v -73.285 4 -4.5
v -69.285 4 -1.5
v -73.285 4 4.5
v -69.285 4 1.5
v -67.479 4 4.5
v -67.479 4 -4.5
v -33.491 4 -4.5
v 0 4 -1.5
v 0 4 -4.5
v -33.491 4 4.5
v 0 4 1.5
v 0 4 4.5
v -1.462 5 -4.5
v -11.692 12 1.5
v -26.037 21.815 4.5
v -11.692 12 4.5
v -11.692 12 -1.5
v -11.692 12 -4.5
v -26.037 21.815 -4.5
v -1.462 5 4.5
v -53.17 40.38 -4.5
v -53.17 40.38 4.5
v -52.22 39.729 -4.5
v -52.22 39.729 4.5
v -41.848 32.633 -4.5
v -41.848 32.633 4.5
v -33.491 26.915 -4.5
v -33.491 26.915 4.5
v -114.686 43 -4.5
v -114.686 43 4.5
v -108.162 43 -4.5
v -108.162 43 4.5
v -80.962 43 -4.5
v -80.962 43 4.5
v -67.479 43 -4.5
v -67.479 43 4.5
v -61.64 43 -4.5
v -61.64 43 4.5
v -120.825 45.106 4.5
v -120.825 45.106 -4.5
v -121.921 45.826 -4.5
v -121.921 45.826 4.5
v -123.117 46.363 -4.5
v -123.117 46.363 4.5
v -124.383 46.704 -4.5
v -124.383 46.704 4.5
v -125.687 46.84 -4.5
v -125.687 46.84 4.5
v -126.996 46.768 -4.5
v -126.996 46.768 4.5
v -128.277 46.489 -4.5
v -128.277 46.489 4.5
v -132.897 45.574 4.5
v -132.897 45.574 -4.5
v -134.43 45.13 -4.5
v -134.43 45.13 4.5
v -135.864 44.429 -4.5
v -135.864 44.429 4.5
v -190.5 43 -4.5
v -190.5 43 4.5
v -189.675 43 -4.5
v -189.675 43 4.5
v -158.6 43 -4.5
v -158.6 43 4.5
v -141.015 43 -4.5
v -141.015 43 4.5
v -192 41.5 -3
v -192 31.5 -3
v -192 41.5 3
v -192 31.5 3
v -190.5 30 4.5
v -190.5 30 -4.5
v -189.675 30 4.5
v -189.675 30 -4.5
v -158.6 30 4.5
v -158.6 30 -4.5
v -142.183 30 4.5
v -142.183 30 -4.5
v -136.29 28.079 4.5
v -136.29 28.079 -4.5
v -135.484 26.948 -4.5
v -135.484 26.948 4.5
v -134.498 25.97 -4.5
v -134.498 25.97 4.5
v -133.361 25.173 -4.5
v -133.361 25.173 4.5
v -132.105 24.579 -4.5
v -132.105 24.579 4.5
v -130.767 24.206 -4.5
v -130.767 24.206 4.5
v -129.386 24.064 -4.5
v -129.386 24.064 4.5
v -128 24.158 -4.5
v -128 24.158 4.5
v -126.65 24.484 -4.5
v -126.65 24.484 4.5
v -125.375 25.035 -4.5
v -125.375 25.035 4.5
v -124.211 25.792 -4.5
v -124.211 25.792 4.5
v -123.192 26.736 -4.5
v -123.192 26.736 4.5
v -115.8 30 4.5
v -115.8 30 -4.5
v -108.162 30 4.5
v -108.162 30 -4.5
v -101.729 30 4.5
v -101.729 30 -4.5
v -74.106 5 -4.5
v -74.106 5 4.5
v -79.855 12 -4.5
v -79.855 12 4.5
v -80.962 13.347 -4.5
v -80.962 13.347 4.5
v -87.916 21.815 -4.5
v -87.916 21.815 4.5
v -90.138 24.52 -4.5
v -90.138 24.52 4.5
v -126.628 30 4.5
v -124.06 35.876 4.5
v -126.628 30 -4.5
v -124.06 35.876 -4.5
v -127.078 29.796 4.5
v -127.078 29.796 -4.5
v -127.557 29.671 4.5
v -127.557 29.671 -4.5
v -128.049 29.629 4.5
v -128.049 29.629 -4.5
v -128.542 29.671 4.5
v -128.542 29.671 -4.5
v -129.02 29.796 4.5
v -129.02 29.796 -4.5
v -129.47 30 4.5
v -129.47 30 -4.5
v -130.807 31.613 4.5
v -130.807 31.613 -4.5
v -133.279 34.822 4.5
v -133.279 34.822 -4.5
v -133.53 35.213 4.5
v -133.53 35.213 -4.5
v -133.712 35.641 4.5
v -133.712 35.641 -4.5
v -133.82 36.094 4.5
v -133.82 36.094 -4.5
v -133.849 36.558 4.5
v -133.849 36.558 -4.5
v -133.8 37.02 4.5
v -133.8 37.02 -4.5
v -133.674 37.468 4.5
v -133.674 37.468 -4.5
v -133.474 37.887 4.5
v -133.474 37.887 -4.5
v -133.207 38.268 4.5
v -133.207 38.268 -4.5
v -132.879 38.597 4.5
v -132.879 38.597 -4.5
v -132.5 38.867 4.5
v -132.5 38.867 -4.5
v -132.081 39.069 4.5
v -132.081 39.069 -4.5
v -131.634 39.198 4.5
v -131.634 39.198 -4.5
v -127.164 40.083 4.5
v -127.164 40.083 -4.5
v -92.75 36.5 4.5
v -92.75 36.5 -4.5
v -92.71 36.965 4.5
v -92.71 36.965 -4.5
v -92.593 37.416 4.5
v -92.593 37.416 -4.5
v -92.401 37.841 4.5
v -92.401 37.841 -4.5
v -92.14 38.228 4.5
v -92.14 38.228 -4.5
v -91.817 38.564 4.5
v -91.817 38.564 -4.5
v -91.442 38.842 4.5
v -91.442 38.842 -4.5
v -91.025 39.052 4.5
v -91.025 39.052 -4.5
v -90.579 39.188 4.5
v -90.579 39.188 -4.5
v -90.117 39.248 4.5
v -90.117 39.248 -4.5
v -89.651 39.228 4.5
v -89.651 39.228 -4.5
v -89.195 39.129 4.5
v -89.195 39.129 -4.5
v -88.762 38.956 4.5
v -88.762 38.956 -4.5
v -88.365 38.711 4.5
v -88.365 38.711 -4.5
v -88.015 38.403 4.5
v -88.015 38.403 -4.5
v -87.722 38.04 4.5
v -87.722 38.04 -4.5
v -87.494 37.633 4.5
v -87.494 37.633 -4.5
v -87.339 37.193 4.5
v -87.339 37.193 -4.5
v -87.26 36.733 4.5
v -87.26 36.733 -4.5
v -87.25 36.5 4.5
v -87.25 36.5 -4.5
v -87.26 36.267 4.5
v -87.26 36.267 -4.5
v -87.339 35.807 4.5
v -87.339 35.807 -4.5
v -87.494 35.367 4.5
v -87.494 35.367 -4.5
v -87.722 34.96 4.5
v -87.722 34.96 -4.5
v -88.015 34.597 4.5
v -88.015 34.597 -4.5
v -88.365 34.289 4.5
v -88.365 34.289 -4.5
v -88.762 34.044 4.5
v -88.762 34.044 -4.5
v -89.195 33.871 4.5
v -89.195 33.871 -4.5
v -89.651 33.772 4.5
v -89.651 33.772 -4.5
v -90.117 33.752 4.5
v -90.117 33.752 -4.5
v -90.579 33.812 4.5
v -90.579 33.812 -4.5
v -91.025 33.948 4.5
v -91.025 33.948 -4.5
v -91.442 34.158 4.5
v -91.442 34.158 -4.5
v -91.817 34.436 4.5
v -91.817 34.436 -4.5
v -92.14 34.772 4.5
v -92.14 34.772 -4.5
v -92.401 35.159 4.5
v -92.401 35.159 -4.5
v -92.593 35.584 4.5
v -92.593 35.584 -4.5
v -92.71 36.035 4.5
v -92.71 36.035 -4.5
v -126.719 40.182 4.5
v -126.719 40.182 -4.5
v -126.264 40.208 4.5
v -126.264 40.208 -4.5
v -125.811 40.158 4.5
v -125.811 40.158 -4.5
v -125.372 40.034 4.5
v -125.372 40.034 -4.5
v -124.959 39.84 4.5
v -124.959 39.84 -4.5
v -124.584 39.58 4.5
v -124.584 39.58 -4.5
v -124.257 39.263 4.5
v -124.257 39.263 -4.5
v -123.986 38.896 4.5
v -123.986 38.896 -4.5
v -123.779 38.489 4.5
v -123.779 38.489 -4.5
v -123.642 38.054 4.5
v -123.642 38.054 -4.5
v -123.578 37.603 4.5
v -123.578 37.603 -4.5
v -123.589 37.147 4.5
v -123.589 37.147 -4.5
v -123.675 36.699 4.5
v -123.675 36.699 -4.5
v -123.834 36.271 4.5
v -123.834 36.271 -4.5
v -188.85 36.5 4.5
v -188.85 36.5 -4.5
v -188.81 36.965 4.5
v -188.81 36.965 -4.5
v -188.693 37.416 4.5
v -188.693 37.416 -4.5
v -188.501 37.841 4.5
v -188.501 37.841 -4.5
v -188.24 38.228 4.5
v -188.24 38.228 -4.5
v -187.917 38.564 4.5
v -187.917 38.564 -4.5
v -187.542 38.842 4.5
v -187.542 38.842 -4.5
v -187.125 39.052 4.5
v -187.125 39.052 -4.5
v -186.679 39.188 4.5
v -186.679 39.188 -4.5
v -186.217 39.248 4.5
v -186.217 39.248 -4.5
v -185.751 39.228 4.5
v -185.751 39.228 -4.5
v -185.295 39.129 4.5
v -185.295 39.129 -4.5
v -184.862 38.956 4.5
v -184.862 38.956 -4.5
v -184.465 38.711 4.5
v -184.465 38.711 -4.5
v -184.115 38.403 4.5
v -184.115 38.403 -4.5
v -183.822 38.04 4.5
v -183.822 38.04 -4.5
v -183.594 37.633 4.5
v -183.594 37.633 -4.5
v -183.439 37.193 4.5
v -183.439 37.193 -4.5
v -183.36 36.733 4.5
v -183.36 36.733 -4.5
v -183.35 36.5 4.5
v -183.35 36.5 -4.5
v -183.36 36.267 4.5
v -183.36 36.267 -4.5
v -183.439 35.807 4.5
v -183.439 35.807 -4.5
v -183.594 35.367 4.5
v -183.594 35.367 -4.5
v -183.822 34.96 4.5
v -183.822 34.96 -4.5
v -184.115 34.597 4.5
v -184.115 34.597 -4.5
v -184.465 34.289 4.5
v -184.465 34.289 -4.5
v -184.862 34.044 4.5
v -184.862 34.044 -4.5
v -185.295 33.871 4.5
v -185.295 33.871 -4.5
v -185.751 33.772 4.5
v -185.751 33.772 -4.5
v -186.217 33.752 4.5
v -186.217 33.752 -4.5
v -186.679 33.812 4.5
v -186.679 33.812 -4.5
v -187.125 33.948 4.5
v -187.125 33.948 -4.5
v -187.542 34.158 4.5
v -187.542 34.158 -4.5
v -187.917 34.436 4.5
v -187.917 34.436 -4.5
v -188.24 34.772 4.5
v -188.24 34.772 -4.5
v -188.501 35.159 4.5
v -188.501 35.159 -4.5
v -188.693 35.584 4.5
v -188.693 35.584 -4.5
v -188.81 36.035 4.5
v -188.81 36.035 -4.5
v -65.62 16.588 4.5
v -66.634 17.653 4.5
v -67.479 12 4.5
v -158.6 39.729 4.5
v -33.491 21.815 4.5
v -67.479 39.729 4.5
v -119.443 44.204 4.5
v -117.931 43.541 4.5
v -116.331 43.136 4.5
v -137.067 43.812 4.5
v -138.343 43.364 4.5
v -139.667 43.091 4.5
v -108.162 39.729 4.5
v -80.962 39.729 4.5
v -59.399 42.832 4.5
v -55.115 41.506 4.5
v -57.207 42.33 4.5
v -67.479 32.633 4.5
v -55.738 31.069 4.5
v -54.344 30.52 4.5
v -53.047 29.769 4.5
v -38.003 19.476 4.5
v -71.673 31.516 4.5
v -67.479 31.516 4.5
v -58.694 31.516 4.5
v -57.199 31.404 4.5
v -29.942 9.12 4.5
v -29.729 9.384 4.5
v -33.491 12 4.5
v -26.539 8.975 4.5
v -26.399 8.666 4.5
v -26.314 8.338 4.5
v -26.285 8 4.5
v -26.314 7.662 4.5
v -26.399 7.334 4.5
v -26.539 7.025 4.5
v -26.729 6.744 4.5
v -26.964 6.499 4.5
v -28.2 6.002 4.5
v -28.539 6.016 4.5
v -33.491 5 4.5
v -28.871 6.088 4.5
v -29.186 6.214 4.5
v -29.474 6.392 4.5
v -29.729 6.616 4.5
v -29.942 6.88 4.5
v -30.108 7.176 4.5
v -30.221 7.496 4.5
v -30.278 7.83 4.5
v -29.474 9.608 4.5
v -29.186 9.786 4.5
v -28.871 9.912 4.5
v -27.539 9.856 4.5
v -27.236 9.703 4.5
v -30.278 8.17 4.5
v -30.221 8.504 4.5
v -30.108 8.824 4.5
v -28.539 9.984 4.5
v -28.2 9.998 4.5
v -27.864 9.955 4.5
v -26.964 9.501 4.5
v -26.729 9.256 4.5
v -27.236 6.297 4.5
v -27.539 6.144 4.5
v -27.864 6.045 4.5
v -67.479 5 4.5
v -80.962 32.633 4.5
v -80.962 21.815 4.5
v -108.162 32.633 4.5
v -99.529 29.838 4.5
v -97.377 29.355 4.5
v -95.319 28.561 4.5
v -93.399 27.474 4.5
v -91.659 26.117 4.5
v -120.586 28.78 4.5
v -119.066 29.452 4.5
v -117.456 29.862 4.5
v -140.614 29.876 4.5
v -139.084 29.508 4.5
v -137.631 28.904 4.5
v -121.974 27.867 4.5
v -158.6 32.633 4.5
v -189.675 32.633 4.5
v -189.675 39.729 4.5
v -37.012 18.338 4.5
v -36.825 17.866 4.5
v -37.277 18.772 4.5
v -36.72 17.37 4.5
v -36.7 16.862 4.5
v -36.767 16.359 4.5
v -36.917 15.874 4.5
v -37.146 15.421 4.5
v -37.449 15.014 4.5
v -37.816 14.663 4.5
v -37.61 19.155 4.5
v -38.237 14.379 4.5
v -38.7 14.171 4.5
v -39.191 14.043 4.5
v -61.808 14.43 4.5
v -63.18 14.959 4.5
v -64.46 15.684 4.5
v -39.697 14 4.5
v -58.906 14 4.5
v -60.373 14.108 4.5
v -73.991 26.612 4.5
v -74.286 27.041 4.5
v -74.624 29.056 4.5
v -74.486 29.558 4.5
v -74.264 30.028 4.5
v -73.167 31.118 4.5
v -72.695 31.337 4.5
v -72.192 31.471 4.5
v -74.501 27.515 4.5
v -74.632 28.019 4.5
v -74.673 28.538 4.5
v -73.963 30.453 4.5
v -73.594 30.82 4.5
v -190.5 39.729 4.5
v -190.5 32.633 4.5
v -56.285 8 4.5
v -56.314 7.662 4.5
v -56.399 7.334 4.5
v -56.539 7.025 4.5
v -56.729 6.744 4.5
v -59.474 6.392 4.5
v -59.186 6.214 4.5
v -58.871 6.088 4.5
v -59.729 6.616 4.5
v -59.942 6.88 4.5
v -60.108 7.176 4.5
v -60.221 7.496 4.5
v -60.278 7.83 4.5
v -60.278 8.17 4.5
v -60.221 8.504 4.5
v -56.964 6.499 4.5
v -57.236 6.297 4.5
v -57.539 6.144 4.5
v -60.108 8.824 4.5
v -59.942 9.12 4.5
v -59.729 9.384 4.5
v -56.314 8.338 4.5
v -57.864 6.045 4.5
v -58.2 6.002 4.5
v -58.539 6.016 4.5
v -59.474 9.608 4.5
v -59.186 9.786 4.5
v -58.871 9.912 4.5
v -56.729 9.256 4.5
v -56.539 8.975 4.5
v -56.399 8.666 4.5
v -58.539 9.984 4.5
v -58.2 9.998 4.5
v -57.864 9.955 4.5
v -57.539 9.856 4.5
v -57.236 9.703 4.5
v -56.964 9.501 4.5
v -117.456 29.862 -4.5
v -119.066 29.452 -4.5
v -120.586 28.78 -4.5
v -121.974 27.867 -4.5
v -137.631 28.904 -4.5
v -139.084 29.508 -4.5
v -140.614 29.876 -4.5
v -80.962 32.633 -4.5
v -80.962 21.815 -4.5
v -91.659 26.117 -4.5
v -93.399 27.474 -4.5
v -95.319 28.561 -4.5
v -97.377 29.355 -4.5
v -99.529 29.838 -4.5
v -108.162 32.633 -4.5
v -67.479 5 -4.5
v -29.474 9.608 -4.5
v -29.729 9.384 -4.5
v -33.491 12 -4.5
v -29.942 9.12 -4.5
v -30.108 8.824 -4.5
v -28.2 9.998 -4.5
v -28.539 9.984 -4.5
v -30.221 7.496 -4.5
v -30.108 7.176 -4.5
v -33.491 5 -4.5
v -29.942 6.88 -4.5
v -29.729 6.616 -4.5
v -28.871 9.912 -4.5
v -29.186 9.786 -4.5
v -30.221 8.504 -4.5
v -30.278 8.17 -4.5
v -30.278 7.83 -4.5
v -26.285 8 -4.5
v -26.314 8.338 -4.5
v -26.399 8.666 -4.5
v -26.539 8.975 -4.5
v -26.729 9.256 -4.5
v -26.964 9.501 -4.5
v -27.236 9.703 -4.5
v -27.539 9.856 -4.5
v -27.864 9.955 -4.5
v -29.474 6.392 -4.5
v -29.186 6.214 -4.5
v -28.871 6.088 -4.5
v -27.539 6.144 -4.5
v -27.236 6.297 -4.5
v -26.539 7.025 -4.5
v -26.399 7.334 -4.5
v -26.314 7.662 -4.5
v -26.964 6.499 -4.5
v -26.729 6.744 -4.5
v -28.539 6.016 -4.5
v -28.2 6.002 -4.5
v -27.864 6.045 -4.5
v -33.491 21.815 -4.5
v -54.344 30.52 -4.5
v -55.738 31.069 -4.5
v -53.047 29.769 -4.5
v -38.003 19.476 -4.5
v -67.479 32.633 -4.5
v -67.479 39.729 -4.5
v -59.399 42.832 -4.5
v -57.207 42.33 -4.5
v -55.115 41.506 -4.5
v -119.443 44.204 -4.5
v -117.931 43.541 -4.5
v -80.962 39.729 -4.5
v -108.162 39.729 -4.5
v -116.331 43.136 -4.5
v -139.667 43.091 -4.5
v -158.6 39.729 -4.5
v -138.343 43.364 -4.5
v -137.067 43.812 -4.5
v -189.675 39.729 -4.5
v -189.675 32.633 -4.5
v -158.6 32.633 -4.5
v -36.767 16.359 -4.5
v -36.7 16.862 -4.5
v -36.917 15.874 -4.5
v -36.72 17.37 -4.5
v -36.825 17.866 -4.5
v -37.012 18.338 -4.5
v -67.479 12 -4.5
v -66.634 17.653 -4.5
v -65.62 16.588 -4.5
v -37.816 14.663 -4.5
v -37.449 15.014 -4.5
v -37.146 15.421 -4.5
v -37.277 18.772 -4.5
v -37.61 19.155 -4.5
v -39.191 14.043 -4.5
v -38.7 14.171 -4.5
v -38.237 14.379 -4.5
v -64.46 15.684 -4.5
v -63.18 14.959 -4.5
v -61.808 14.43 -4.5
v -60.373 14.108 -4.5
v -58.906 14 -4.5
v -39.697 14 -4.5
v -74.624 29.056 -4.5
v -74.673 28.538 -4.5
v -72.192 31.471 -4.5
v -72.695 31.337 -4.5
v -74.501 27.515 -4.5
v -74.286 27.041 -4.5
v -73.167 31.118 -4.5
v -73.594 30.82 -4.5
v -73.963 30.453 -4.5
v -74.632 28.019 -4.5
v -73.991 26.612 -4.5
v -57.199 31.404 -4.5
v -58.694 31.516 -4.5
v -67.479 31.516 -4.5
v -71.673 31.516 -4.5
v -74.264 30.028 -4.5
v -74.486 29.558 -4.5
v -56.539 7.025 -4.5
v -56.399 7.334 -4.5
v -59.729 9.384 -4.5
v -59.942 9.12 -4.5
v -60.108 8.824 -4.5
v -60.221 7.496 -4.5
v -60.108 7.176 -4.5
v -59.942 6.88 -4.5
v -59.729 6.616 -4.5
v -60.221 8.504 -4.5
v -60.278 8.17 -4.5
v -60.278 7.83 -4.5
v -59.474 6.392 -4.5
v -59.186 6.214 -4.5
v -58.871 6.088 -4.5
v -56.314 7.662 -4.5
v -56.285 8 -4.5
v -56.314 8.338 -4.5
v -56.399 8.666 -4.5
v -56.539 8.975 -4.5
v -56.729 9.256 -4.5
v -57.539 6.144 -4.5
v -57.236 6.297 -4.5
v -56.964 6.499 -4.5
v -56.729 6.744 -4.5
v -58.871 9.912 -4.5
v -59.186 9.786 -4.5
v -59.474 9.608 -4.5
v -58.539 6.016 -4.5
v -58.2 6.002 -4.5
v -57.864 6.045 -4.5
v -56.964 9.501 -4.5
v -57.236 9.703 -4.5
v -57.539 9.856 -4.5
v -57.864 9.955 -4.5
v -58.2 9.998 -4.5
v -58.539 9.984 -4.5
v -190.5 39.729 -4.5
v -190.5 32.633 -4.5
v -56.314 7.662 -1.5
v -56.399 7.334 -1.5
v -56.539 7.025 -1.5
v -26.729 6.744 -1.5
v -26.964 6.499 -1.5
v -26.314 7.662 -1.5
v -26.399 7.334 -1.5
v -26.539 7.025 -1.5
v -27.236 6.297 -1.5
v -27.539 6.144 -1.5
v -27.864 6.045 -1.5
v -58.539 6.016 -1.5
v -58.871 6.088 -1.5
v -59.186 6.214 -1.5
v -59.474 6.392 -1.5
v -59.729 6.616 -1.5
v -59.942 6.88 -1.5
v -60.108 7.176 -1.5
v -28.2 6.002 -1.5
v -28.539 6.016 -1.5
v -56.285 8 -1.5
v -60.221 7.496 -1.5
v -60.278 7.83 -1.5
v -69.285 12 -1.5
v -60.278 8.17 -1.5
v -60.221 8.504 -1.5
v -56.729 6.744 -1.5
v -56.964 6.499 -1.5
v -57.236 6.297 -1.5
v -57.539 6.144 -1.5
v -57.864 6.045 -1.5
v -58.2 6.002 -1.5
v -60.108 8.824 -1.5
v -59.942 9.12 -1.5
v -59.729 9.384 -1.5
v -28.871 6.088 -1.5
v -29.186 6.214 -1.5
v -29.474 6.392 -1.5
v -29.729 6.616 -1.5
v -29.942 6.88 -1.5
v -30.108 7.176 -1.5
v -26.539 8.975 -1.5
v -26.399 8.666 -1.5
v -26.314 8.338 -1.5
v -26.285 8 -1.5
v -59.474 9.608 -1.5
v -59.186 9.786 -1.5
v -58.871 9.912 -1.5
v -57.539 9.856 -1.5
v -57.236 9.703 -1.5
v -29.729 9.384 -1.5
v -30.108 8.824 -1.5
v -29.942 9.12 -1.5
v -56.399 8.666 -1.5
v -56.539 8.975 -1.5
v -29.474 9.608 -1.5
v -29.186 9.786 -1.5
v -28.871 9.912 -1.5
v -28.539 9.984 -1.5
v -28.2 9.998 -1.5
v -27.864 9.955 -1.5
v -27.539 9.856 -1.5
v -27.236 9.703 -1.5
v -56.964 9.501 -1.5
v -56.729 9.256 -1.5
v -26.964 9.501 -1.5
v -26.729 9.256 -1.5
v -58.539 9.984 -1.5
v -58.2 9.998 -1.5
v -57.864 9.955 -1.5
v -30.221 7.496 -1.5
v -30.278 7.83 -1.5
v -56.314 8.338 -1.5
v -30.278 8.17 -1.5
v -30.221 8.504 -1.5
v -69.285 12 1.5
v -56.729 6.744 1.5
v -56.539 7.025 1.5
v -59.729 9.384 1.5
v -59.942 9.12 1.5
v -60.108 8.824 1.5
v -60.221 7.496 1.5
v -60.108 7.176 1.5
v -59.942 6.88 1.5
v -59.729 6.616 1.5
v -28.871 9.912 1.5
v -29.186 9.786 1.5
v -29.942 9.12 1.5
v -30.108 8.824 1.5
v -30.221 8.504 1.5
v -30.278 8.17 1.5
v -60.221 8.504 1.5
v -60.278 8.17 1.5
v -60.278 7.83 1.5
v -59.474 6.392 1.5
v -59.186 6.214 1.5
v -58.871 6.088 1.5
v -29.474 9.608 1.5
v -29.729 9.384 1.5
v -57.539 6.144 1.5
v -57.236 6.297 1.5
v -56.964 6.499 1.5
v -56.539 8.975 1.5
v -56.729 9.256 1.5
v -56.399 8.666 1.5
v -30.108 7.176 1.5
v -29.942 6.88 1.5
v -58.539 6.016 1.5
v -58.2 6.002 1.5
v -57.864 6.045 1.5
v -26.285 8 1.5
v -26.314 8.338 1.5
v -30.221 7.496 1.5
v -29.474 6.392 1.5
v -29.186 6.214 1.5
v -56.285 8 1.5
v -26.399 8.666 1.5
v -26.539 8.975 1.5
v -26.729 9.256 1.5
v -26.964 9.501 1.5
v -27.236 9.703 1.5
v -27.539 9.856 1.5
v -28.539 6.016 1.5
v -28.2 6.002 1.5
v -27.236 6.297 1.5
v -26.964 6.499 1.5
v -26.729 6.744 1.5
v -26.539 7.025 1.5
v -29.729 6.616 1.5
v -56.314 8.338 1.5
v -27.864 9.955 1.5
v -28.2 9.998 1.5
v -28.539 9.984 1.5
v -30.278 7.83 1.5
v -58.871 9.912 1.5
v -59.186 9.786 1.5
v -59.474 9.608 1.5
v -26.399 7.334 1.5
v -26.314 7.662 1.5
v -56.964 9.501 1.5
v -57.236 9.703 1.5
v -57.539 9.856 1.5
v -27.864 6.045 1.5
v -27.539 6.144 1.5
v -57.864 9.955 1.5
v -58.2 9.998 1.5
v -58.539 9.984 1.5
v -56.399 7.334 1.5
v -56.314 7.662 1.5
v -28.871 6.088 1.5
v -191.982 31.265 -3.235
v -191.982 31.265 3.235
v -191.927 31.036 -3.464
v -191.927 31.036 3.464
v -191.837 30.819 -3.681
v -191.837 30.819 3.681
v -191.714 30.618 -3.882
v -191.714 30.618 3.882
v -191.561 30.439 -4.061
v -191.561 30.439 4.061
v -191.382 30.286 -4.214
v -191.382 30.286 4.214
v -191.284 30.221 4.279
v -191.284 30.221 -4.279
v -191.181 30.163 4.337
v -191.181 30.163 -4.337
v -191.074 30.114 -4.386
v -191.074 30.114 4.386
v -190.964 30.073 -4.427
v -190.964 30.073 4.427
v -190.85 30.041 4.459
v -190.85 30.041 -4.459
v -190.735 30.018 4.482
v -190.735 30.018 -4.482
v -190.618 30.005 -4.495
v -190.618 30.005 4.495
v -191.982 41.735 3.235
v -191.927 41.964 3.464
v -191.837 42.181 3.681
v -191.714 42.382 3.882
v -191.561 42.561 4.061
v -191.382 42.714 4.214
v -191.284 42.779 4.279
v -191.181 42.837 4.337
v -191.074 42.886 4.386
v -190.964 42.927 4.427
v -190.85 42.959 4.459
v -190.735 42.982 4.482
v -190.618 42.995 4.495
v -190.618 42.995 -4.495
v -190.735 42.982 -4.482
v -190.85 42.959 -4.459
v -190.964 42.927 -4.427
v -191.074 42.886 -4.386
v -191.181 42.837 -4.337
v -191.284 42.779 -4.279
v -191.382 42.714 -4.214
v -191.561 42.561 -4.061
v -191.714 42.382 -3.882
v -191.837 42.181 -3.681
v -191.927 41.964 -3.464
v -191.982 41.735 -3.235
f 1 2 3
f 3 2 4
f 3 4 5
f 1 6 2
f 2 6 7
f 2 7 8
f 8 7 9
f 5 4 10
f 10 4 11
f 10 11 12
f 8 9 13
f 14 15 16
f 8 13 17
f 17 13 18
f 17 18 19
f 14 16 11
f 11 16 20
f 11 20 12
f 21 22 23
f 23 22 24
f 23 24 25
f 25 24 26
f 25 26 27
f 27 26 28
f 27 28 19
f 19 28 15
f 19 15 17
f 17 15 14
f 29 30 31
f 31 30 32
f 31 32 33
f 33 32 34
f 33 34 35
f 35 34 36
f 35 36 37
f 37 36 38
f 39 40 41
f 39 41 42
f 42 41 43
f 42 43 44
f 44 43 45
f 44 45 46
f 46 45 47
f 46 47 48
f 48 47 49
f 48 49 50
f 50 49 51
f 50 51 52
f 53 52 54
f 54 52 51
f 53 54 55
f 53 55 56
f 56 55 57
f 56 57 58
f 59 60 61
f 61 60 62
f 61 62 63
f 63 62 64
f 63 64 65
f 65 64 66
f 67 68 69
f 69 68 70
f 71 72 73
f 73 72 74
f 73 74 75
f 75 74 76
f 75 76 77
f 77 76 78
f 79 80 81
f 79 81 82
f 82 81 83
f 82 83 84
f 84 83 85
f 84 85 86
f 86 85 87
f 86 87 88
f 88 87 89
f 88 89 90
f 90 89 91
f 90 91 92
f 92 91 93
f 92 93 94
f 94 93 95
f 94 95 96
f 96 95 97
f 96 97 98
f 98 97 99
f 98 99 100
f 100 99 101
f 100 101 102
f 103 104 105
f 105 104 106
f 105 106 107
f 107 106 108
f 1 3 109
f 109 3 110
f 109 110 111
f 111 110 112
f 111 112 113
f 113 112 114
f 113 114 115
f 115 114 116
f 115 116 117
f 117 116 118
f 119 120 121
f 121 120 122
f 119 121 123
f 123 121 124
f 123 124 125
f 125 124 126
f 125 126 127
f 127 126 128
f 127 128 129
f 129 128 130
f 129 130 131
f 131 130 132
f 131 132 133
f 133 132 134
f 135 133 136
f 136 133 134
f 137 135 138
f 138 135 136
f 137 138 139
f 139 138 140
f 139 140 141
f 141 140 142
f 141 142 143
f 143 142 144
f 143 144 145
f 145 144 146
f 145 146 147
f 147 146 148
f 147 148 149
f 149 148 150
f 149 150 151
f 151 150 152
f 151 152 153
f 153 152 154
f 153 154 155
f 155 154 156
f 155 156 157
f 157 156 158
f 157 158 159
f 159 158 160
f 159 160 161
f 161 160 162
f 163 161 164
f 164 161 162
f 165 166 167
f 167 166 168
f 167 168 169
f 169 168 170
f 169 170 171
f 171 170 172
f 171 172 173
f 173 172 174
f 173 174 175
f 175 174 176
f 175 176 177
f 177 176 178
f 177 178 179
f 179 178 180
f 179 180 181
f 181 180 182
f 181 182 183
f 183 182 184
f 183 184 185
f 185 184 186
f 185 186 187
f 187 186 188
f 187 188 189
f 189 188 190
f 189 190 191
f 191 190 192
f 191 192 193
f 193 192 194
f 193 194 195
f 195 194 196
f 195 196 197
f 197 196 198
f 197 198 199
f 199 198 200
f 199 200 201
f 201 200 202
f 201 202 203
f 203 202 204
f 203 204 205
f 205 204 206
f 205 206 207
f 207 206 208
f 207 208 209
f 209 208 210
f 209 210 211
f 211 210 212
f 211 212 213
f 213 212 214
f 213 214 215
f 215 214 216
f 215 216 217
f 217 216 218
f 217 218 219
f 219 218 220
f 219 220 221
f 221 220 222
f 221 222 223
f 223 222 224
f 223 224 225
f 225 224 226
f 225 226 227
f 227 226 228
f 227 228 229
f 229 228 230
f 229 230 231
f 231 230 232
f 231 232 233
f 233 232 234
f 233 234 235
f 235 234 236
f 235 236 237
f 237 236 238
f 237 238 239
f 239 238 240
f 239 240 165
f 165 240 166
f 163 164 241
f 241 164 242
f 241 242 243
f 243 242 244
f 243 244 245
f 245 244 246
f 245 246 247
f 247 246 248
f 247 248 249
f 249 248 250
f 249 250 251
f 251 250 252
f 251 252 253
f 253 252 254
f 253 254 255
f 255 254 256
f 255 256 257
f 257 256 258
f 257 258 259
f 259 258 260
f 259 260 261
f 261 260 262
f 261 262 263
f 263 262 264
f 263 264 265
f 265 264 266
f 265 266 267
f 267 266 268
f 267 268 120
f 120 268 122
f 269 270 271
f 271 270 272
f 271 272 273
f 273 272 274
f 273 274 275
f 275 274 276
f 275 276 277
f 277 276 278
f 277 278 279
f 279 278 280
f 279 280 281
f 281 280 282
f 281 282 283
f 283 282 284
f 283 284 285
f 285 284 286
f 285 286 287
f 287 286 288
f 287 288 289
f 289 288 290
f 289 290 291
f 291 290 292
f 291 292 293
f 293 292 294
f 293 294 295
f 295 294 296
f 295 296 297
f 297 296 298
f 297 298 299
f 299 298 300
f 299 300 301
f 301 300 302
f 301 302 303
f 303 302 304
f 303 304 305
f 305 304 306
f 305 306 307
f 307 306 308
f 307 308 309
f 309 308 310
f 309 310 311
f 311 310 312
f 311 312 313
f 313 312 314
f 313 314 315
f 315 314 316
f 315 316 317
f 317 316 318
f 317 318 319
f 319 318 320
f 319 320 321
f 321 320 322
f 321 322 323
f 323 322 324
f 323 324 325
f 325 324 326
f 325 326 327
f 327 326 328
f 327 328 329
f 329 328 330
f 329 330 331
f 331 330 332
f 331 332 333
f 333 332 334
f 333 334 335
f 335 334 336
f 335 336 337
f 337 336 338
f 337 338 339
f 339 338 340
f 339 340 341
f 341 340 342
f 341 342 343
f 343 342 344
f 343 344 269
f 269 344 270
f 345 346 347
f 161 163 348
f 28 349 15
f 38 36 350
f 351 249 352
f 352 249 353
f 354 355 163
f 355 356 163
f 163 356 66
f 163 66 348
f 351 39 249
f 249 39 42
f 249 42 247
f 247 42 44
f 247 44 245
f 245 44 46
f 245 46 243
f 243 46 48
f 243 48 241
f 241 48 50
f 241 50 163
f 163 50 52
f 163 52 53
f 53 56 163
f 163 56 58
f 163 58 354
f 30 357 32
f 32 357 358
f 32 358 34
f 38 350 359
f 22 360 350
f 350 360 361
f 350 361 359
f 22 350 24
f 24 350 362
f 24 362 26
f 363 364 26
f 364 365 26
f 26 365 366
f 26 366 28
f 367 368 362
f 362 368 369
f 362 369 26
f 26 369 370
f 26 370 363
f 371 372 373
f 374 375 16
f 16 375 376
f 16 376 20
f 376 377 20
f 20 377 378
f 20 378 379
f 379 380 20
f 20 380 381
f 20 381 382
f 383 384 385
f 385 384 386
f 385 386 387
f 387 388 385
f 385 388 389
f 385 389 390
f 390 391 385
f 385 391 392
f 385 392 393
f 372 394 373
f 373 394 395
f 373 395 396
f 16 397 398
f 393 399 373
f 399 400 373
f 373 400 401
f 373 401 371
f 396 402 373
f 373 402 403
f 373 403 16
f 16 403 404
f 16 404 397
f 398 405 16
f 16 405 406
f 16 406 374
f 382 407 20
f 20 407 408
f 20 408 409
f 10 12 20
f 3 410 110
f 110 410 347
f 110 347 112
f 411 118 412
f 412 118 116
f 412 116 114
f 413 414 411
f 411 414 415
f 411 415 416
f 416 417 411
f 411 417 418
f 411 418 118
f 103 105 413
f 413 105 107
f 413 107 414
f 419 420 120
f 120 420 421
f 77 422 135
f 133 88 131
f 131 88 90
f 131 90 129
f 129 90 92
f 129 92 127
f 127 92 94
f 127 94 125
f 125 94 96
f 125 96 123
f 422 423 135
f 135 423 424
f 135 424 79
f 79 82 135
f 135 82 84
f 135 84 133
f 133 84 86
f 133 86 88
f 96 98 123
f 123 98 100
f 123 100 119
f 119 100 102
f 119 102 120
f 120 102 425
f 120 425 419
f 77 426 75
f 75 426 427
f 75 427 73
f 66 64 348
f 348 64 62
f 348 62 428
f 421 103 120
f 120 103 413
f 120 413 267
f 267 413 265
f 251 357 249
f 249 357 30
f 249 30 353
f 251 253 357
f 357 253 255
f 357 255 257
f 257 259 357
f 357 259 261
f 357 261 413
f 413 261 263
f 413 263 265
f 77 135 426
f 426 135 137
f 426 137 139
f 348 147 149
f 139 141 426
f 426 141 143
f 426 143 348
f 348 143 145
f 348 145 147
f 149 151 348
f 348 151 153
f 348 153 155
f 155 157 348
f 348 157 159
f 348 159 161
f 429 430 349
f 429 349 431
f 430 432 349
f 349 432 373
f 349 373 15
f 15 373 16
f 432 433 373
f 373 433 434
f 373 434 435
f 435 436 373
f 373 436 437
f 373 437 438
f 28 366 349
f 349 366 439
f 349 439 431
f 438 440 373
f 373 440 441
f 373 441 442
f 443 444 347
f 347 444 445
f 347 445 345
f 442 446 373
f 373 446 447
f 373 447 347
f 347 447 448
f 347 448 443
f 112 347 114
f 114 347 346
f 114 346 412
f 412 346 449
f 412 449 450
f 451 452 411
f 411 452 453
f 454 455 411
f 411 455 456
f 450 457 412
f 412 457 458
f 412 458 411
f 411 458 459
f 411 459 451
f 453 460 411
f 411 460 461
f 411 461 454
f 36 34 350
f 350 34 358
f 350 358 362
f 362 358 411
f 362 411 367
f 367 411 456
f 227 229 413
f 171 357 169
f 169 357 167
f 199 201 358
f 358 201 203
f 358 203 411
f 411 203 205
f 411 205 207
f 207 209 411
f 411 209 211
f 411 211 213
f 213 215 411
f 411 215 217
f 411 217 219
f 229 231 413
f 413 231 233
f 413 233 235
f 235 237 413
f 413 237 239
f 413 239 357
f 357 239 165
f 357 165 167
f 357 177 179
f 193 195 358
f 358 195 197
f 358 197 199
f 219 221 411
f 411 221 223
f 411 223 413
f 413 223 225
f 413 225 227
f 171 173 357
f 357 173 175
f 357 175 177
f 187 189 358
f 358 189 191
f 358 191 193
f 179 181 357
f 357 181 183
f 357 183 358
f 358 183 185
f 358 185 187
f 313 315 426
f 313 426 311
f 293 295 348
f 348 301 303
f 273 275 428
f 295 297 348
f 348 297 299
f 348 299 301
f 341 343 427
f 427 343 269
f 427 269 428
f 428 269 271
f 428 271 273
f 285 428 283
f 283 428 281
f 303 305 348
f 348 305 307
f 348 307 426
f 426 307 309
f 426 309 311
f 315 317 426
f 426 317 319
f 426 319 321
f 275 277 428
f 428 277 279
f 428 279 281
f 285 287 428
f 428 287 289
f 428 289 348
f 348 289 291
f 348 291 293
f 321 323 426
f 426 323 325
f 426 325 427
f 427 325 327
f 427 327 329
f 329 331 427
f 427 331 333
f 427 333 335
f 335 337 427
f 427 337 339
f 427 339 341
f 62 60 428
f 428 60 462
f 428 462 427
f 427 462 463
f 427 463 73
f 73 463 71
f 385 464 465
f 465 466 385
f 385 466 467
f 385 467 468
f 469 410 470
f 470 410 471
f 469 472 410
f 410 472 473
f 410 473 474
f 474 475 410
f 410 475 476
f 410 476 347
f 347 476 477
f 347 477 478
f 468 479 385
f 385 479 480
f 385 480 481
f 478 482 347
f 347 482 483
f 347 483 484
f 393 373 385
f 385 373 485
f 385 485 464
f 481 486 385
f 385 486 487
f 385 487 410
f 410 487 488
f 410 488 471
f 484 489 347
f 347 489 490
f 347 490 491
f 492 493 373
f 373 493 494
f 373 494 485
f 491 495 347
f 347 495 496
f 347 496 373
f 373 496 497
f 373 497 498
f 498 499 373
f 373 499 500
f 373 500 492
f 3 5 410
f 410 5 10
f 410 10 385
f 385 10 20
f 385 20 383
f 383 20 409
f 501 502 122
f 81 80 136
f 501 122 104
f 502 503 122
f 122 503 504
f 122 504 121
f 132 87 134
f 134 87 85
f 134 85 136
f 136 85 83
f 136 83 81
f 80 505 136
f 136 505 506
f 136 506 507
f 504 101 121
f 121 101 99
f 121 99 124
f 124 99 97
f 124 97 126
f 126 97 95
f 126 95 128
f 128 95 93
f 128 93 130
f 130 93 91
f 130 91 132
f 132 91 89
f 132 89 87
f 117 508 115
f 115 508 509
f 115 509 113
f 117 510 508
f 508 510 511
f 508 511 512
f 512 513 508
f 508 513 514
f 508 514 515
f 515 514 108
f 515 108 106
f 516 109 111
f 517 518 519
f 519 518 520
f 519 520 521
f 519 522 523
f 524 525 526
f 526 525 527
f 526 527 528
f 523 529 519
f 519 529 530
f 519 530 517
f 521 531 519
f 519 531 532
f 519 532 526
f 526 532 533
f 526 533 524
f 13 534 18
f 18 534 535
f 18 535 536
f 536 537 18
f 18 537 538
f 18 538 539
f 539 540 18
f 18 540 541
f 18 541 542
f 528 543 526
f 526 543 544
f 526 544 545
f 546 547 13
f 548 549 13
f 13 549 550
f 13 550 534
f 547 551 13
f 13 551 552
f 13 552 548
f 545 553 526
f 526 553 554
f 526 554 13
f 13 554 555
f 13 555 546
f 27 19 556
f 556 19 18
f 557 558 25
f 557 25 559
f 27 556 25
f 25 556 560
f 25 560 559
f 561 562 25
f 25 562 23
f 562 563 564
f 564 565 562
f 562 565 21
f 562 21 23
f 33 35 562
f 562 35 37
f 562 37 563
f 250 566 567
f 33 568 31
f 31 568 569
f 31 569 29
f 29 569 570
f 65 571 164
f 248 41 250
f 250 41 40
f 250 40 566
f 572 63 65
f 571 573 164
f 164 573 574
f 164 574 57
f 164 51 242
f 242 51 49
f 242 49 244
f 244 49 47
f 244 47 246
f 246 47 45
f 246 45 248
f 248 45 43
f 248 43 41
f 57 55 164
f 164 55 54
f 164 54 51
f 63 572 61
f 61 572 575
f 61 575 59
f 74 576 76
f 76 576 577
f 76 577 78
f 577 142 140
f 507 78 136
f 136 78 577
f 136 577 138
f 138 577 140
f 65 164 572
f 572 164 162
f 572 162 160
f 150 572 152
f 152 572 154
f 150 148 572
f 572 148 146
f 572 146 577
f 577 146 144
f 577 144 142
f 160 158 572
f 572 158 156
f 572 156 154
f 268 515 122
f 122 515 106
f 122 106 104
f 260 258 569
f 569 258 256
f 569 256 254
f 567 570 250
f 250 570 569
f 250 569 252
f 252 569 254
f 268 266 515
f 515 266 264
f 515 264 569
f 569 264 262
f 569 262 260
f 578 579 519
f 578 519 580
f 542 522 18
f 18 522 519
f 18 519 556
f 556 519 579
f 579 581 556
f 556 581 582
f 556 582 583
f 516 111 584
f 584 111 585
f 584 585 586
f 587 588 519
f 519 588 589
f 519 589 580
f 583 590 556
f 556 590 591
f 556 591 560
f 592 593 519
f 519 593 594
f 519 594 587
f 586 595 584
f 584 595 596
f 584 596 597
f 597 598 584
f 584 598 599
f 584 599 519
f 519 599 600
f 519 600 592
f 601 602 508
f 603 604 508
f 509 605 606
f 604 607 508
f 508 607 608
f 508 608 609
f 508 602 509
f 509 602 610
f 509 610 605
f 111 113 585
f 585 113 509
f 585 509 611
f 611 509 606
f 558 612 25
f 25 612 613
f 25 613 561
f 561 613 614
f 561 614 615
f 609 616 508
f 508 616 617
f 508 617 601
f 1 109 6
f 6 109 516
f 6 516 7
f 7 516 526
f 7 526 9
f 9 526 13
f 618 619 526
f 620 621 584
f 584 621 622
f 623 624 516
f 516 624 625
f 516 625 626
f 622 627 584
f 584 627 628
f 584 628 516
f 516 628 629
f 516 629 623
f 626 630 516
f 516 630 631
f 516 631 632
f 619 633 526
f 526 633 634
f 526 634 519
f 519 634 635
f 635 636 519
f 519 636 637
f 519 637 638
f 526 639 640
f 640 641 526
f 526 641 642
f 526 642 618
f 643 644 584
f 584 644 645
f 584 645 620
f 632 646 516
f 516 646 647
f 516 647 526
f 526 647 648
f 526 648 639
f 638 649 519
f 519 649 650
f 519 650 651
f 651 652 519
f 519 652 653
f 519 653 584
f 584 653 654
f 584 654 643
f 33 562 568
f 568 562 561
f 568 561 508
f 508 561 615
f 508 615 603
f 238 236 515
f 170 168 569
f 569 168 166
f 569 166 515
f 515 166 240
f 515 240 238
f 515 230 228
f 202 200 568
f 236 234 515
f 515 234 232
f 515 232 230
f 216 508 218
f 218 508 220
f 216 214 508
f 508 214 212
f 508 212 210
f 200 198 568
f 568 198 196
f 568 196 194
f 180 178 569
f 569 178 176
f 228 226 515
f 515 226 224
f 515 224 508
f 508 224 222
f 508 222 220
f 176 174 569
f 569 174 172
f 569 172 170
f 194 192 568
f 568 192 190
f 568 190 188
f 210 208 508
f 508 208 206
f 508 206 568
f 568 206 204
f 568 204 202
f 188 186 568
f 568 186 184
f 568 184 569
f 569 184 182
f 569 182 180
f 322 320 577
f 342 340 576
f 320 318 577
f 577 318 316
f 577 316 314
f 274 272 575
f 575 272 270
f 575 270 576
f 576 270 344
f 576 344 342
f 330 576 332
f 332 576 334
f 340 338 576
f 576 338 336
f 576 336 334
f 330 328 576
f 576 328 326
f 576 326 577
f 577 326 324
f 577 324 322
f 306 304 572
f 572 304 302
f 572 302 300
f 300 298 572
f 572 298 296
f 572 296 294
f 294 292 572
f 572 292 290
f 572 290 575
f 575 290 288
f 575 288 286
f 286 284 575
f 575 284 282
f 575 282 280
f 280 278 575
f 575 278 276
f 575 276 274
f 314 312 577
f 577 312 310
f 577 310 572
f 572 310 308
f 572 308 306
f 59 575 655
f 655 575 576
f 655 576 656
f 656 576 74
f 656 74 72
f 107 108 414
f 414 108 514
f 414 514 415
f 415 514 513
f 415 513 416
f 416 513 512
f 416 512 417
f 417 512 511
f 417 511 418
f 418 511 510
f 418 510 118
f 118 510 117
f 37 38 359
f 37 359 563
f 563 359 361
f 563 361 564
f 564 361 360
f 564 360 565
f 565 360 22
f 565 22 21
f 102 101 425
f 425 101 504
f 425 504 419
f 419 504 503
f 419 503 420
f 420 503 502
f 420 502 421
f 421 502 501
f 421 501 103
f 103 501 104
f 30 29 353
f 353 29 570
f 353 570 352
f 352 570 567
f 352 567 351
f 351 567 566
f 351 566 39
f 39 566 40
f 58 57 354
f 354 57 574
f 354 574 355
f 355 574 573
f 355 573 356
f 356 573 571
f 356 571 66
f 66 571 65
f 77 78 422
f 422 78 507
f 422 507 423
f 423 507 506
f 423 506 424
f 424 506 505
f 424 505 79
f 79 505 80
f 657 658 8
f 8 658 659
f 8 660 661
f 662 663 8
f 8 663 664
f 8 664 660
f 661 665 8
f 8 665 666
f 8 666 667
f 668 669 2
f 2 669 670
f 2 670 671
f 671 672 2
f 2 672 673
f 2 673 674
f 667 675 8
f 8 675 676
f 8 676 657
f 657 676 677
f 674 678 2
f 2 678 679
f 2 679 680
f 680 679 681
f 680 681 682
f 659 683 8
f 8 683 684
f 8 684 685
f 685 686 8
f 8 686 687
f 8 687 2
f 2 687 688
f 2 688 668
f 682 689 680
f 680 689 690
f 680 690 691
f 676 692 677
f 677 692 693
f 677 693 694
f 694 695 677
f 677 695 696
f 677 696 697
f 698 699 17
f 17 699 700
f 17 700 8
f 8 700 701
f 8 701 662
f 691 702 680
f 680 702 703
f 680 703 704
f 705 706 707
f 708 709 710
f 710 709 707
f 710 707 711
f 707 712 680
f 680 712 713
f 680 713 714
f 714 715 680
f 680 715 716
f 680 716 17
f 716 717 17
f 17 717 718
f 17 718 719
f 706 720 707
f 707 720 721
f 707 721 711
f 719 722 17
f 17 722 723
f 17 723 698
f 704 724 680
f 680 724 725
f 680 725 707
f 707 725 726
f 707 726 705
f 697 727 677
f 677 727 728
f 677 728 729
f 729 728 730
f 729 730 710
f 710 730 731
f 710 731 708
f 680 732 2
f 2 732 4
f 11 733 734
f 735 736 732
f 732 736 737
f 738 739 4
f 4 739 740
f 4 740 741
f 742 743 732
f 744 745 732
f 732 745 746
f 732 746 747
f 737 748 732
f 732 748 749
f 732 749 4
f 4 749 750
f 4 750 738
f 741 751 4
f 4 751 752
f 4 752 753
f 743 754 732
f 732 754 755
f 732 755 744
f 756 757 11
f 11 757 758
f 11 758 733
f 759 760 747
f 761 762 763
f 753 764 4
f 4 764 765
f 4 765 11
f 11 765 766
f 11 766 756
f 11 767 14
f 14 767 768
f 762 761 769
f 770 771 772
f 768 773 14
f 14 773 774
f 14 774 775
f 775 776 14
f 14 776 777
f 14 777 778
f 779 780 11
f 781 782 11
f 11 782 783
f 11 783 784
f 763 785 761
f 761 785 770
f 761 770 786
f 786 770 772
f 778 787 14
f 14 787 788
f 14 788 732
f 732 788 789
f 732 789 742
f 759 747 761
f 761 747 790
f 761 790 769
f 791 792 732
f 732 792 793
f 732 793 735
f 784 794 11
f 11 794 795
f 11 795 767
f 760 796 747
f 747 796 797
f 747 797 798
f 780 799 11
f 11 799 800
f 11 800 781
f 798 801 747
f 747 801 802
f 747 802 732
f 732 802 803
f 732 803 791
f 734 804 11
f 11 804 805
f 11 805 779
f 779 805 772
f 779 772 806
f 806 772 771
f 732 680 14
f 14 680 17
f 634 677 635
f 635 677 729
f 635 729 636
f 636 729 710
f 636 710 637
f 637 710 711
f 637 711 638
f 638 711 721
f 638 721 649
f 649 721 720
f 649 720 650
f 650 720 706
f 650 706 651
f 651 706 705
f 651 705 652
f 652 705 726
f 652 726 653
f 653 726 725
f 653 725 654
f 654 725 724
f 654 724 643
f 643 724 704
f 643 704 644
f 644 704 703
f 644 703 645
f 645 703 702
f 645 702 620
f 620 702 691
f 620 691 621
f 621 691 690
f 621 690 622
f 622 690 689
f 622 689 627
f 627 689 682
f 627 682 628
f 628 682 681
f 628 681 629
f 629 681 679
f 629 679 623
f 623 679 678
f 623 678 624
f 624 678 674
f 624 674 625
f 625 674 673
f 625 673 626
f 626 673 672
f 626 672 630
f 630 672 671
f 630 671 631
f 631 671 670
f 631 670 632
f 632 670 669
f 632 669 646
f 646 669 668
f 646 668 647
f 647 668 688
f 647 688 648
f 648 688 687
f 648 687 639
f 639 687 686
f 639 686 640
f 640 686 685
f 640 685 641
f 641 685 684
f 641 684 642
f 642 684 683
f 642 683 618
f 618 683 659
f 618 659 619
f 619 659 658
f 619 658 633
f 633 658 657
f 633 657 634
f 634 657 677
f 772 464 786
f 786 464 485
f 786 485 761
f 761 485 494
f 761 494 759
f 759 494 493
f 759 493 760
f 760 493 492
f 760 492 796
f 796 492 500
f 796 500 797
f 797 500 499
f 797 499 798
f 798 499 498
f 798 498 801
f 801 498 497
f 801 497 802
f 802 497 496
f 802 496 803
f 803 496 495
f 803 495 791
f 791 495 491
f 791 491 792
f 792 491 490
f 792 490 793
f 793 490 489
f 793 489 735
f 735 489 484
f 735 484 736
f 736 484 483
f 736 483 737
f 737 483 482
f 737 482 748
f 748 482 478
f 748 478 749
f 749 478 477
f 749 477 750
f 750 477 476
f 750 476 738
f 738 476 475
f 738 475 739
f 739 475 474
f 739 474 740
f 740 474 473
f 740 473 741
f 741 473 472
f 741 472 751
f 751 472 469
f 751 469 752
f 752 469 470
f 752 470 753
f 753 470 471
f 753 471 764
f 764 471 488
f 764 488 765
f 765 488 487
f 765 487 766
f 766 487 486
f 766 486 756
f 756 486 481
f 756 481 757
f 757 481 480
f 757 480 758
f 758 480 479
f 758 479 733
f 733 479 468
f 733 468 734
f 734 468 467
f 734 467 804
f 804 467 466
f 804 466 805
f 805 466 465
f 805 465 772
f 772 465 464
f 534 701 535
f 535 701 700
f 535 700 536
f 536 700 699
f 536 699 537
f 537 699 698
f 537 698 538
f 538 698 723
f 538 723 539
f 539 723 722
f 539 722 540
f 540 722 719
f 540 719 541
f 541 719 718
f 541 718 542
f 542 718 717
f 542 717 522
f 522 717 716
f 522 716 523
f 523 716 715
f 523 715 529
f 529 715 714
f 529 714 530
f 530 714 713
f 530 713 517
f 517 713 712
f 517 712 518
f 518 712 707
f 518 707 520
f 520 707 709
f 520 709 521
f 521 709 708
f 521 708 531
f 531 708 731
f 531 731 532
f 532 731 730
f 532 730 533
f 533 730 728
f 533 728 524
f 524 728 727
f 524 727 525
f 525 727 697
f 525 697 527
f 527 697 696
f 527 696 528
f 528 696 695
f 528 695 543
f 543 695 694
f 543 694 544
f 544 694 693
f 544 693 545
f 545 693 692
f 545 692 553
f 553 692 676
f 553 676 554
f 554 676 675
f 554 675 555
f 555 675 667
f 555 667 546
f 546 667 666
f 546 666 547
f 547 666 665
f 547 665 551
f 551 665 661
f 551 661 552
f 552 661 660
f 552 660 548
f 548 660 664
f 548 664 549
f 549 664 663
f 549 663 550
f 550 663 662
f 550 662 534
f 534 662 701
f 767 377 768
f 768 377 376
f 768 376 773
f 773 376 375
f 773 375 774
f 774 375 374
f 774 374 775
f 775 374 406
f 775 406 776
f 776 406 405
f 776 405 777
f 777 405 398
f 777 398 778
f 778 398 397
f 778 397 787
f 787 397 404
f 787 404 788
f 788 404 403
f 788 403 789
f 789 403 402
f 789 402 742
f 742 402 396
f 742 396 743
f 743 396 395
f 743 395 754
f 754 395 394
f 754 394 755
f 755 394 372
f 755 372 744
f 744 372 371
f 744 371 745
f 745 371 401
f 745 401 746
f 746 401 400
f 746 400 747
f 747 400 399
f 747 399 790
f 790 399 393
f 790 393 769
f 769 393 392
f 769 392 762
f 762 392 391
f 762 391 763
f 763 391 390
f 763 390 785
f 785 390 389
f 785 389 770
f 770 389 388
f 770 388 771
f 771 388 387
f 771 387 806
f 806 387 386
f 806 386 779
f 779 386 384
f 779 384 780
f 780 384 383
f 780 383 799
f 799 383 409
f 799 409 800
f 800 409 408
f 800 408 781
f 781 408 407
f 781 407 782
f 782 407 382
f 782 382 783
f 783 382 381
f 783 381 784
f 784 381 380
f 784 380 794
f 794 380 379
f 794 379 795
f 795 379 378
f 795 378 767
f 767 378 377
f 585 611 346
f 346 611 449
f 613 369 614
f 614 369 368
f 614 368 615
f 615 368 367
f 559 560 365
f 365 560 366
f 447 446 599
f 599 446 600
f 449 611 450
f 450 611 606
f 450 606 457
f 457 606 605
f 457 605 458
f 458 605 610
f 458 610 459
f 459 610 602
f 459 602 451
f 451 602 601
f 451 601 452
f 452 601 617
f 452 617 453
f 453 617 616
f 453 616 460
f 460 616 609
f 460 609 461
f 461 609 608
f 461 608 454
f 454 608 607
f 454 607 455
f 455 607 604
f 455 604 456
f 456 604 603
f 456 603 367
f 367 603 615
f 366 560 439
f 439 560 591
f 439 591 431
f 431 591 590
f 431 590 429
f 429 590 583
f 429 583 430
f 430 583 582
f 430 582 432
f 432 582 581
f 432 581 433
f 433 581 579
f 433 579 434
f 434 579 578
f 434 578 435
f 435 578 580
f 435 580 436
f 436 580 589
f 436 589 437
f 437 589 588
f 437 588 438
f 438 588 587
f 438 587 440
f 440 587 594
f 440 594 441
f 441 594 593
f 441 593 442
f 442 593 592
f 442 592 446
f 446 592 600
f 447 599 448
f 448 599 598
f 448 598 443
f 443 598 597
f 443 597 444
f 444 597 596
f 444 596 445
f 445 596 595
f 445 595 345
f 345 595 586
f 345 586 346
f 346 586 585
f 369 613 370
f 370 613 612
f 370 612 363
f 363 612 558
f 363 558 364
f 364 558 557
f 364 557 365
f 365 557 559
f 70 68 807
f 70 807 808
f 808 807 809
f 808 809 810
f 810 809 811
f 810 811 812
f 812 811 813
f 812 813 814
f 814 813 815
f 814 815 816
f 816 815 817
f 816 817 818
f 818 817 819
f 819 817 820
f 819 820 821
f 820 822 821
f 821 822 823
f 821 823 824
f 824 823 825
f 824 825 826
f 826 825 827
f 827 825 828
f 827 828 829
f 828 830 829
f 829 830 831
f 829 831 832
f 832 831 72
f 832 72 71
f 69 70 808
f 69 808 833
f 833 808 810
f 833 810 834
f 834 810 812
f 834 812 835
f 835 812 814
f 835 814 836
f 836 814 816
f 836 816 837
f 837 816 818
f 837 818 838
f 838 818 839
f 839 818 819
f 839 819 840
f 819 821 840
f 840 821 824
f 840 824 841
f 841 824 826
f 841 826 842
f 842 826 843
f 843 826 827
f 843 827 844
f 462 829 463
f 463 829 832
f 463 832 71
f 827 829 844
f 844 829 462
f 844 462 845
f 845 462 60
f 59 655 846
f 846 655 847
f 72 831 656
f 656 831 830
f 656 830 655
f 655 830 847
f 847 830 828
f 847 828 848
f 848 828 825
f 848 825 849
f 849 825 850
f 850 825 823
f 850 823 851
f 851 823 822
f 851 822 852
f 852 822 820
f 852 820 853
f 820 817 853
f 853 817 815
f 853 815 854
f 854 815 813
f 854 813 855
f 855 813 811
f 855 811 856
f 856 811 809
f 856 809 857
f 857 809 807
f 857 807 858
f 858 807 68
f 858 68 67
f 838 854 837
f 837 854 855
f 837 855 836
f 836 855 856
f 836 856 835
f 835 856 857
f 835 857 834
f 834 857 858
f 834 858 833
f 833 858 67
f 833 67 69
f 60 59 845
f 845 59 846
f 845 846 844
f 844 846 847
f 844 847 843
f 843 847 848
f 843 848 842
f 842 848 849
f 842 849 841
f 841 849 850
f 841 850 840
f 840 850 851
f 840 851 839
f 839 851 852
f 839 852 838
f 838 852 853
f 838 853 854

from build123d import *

# Parameters (mm, degrees)
SKETCH3_R                 = 2.75
BOSS_EXTRUDE3_DEPTH       = 4.5
FILLET13_R                = 15
FILLET14_START            = -4.5
FILLET14_DEPTH            = 9
SKETCH6_W                 = 69.28510074
SKETCH6_H                 = 3
CUT_EXTRUDE3_DEPTH        = 8
F_3_0MM_DOWEL_HOLE1_D     = 4
F_3_0MM_DOWEL_HOLE1_DEPTH = 9
F_3_0MM_DOWEL_HOLE1_TIP   = 1.201721238
CUT_EXTRUDE4_DEPTH        = 9
FILLET16_R                = 3
FILLET17_R                = 10
FILLET18_R                = 1.5


with BuildPart() as part:
    # Sketch3 → Boss-Extrude3 (new, symmetric)
    with BuildSketch(Plane.XY):
        with BuildLine():
            Line((0, 4), (-57, 43))
            Line((-57, 43), (-118.915266557, 43))
            ThreePointArc((-118.915266557, 43), (-123.007557158, 46.323583072), (-128.27688576, 46.488576653))
            Line((-128.27688576, 46.488576653), (-132.896667749, 45.573835187))
            ThreePointArc((-132.896667749, 45.573835187), (-135.482170861, 44.646108184), (-137.681223291, 43))
            Line((-137.681223291, 43), (-192, 43))
            Line((-192, 43), (-192, 30))
            Line((-192, 30), (-137.769349371, 30))
            Line((-137.769349371, 30), (-136.290115263, 28.079175362))
            ThreePointArc((-136.290115263, 28.079175362), (-129.185667244, 24.063000847), (-122.139231824, 28.180109937))
            Line((-122.139231824, 28.180109937), (-121.157209597, 30))
            Line((-121.157209597, 30), (-94.638255551, 30))
            Line((-94.638255551, 30), (-73.28510074, 4))
            Line((-73.28510074, 4), (-70, 4))
            Line((-70, 4), (0, 4))
        make_face()
        with BuildLine():
            Line((-124.060142597, 35.875632157), (-126.628090603, 30))
            ThreePointArc((-126.628090603, 30), (-128.04927418, 29.629254975), (-129.470457758, 30))
            Line((-129.470457758, 30), (-130.807389931, 31.612913936))
            Line((-130.807389931, 31.612913936), (-133.278796519, 34.822100799))
            ThreePointArc((-133.278796519, 34.822100799), (-133.674163723, 37.467564533), (-131.634144466, 39.197626677))
            Line((-131.634144466, 39.197626677), (-127.164353264, 40.082669168))
            ThreePointArc((-127.164353264, 40.082669168), (-124.113731215, 39.084848464), (-124.060142597, 35.875632157))
        make_face(mode=Mode.SUBTRACT)
        with Locations((-186.1, 36.5)):
            Circle(SKETCH3_R, mode=Mode.SUBTRACT)
        with Locations((-90, 36.5)):
            Circle(SKETCH3_R, mode=Mode.SUBTRACT)
    extrude(amount=BOSS_EXTRUDE3_DEPTH, both=True)

    # Fillet13
    fillet13_edges = [part.edges().sort_by_distance(p)[0] for p in [
        (-57, 43, 0),
        (-94.638255551, 30, 0),
    ]]
    fillet(fillet13_edges, radius=FILLET13_R)

    # Fillet14: read off the stored shape, not the designer's step
    # Fillet14 outline → Fillet14 (add)
    with BuildSketch(Plane.XY.offset(FILLET14_START)):
        with BuildLine():
            ThreePointArc((-122.139231824, 28.180109937), (-122.625925477, 27.42914609), (-123.191657584, 26.735774188))
            ThreePointArc((-123.191657584, 26.735774188), (-119.840432538, 29.147615588), (-115.800490823, 30))
            Line((-115.800490823, 30), (-121.157209597, 30))
            Line((-121.157209597, 30), (-122.139231824, 28.180109937))
        make_face()
        with BuildLine():
            ThreePointArc((-142.183070844, 30), (-139.084018861, 29.507674627), (-136.290115263, 28.079175362))
            Line((-136.290115263, 28.079175362), (-137.769349371, 30))
            Line((-137.769349371, 30), (-142.183070844, 30))
        make_face()
        with BuildLine():
            Line((-118.915266557, 43), (-114.686129887, 43))
            ThreePointArc((-114.686129887, 43), (-117.931187648, 43.541162856), (-120.825024465, 45.106079975))
            ThreePointArc((-120.825024465, 45.106079975), (-119.778687593, 44.13597249), (-118.915266557, 43))
        make_face()
        with BuildLine():
            ThreePointArc((-137.681223291, 43), (-136.817642976, 43.771248779), (-135.864478471, 44.428571429))
            ThreePointArc((-135.864478471, 44.428571429), (-138.342653588, 43.363758883), (-141.015266008, 43))
            Line((-141.015266008, 43), (-137.681223291, 43))
        make_face()
    extrude(amount=FILLET14_DEPTH)

    # Sketch6 → Cut-Extrude3 (cut)
    with BuildSketch(Plane.XZ.offset(-4)):
        with Locations((-34.64255037, 0)):
            Rectangle(SKETCH6_W, SKETCH6_H)
    extrude(amount=-CUT_EXTRUDE3_DEPTH, mode=Mode.SUBTRACT)

    # Ø3.0mm Dowel Hole1
    with Locations(Plane.XY.offset(4.5)):
        with Locations((-28.28510074, 8), (-58.28510074, 8)):
            Hole(F_3_0MM_DOWEL_HOLE1_D / 2, depth=F_3_0MM_DOWEL_HOLE1_DEPTH)
            with Locations((0, 0, -(F_3_0MM_DOWEL_HOLE1_DEPTH + F_3_0MM_DOWEL_HOLE1_TIP / 2))):  # 118° drill point
                Cone(0, F_3_0MM_DOWEL_HOLE1_D / 2, F_3_0MM_DOWEL_HOLE1_TIP, mode=Mode.SUBTRACT)

    # Sketch10 → Cut-Extrude4 (cut)
    with BuildSketch(Plane.XY.offset(4.5)):
        Polygon((-78.018937792, 31.515807302), (-55.600026057, 31.515807302), (-30, 14), (-63.633639909, 14), align=None)
    extrude(amount=-CUT_EXTRUDE4_DEPTH, mode=Mode.SUBTRACT)

    # Fillet16
    fillet16_edges = [part.edges().sort_by_distance(p)[0] for p in [
        (-78.018937792, 31.515807302, 0),
        (-30, 14, 0),
    ]]
    fillet(fillet16_edges, radius=FILLET16_R)

    # Fillet17
    fillet17_edges = [part.edges().sort_by_distance(p)[0] for p in [
        (-63.633639909, 14, 0),
        (-55.600026057, 31.515807302, 0),
    ]]
    fillet(fillet17_edges, radius=FILLET17_R)

    # Fillet18
    fillet18_edges = [part.edges().sort_by_distance(p)[0] for p in [
        (-192, 36.5, -4.5),
        (-192, 30, 0),
        (-192, 43, 0),
        (-192, 36.5, 4.5),
    ]]
    fillet(fillet18_edges, radius=FILLET18_R)


solid = part.part
